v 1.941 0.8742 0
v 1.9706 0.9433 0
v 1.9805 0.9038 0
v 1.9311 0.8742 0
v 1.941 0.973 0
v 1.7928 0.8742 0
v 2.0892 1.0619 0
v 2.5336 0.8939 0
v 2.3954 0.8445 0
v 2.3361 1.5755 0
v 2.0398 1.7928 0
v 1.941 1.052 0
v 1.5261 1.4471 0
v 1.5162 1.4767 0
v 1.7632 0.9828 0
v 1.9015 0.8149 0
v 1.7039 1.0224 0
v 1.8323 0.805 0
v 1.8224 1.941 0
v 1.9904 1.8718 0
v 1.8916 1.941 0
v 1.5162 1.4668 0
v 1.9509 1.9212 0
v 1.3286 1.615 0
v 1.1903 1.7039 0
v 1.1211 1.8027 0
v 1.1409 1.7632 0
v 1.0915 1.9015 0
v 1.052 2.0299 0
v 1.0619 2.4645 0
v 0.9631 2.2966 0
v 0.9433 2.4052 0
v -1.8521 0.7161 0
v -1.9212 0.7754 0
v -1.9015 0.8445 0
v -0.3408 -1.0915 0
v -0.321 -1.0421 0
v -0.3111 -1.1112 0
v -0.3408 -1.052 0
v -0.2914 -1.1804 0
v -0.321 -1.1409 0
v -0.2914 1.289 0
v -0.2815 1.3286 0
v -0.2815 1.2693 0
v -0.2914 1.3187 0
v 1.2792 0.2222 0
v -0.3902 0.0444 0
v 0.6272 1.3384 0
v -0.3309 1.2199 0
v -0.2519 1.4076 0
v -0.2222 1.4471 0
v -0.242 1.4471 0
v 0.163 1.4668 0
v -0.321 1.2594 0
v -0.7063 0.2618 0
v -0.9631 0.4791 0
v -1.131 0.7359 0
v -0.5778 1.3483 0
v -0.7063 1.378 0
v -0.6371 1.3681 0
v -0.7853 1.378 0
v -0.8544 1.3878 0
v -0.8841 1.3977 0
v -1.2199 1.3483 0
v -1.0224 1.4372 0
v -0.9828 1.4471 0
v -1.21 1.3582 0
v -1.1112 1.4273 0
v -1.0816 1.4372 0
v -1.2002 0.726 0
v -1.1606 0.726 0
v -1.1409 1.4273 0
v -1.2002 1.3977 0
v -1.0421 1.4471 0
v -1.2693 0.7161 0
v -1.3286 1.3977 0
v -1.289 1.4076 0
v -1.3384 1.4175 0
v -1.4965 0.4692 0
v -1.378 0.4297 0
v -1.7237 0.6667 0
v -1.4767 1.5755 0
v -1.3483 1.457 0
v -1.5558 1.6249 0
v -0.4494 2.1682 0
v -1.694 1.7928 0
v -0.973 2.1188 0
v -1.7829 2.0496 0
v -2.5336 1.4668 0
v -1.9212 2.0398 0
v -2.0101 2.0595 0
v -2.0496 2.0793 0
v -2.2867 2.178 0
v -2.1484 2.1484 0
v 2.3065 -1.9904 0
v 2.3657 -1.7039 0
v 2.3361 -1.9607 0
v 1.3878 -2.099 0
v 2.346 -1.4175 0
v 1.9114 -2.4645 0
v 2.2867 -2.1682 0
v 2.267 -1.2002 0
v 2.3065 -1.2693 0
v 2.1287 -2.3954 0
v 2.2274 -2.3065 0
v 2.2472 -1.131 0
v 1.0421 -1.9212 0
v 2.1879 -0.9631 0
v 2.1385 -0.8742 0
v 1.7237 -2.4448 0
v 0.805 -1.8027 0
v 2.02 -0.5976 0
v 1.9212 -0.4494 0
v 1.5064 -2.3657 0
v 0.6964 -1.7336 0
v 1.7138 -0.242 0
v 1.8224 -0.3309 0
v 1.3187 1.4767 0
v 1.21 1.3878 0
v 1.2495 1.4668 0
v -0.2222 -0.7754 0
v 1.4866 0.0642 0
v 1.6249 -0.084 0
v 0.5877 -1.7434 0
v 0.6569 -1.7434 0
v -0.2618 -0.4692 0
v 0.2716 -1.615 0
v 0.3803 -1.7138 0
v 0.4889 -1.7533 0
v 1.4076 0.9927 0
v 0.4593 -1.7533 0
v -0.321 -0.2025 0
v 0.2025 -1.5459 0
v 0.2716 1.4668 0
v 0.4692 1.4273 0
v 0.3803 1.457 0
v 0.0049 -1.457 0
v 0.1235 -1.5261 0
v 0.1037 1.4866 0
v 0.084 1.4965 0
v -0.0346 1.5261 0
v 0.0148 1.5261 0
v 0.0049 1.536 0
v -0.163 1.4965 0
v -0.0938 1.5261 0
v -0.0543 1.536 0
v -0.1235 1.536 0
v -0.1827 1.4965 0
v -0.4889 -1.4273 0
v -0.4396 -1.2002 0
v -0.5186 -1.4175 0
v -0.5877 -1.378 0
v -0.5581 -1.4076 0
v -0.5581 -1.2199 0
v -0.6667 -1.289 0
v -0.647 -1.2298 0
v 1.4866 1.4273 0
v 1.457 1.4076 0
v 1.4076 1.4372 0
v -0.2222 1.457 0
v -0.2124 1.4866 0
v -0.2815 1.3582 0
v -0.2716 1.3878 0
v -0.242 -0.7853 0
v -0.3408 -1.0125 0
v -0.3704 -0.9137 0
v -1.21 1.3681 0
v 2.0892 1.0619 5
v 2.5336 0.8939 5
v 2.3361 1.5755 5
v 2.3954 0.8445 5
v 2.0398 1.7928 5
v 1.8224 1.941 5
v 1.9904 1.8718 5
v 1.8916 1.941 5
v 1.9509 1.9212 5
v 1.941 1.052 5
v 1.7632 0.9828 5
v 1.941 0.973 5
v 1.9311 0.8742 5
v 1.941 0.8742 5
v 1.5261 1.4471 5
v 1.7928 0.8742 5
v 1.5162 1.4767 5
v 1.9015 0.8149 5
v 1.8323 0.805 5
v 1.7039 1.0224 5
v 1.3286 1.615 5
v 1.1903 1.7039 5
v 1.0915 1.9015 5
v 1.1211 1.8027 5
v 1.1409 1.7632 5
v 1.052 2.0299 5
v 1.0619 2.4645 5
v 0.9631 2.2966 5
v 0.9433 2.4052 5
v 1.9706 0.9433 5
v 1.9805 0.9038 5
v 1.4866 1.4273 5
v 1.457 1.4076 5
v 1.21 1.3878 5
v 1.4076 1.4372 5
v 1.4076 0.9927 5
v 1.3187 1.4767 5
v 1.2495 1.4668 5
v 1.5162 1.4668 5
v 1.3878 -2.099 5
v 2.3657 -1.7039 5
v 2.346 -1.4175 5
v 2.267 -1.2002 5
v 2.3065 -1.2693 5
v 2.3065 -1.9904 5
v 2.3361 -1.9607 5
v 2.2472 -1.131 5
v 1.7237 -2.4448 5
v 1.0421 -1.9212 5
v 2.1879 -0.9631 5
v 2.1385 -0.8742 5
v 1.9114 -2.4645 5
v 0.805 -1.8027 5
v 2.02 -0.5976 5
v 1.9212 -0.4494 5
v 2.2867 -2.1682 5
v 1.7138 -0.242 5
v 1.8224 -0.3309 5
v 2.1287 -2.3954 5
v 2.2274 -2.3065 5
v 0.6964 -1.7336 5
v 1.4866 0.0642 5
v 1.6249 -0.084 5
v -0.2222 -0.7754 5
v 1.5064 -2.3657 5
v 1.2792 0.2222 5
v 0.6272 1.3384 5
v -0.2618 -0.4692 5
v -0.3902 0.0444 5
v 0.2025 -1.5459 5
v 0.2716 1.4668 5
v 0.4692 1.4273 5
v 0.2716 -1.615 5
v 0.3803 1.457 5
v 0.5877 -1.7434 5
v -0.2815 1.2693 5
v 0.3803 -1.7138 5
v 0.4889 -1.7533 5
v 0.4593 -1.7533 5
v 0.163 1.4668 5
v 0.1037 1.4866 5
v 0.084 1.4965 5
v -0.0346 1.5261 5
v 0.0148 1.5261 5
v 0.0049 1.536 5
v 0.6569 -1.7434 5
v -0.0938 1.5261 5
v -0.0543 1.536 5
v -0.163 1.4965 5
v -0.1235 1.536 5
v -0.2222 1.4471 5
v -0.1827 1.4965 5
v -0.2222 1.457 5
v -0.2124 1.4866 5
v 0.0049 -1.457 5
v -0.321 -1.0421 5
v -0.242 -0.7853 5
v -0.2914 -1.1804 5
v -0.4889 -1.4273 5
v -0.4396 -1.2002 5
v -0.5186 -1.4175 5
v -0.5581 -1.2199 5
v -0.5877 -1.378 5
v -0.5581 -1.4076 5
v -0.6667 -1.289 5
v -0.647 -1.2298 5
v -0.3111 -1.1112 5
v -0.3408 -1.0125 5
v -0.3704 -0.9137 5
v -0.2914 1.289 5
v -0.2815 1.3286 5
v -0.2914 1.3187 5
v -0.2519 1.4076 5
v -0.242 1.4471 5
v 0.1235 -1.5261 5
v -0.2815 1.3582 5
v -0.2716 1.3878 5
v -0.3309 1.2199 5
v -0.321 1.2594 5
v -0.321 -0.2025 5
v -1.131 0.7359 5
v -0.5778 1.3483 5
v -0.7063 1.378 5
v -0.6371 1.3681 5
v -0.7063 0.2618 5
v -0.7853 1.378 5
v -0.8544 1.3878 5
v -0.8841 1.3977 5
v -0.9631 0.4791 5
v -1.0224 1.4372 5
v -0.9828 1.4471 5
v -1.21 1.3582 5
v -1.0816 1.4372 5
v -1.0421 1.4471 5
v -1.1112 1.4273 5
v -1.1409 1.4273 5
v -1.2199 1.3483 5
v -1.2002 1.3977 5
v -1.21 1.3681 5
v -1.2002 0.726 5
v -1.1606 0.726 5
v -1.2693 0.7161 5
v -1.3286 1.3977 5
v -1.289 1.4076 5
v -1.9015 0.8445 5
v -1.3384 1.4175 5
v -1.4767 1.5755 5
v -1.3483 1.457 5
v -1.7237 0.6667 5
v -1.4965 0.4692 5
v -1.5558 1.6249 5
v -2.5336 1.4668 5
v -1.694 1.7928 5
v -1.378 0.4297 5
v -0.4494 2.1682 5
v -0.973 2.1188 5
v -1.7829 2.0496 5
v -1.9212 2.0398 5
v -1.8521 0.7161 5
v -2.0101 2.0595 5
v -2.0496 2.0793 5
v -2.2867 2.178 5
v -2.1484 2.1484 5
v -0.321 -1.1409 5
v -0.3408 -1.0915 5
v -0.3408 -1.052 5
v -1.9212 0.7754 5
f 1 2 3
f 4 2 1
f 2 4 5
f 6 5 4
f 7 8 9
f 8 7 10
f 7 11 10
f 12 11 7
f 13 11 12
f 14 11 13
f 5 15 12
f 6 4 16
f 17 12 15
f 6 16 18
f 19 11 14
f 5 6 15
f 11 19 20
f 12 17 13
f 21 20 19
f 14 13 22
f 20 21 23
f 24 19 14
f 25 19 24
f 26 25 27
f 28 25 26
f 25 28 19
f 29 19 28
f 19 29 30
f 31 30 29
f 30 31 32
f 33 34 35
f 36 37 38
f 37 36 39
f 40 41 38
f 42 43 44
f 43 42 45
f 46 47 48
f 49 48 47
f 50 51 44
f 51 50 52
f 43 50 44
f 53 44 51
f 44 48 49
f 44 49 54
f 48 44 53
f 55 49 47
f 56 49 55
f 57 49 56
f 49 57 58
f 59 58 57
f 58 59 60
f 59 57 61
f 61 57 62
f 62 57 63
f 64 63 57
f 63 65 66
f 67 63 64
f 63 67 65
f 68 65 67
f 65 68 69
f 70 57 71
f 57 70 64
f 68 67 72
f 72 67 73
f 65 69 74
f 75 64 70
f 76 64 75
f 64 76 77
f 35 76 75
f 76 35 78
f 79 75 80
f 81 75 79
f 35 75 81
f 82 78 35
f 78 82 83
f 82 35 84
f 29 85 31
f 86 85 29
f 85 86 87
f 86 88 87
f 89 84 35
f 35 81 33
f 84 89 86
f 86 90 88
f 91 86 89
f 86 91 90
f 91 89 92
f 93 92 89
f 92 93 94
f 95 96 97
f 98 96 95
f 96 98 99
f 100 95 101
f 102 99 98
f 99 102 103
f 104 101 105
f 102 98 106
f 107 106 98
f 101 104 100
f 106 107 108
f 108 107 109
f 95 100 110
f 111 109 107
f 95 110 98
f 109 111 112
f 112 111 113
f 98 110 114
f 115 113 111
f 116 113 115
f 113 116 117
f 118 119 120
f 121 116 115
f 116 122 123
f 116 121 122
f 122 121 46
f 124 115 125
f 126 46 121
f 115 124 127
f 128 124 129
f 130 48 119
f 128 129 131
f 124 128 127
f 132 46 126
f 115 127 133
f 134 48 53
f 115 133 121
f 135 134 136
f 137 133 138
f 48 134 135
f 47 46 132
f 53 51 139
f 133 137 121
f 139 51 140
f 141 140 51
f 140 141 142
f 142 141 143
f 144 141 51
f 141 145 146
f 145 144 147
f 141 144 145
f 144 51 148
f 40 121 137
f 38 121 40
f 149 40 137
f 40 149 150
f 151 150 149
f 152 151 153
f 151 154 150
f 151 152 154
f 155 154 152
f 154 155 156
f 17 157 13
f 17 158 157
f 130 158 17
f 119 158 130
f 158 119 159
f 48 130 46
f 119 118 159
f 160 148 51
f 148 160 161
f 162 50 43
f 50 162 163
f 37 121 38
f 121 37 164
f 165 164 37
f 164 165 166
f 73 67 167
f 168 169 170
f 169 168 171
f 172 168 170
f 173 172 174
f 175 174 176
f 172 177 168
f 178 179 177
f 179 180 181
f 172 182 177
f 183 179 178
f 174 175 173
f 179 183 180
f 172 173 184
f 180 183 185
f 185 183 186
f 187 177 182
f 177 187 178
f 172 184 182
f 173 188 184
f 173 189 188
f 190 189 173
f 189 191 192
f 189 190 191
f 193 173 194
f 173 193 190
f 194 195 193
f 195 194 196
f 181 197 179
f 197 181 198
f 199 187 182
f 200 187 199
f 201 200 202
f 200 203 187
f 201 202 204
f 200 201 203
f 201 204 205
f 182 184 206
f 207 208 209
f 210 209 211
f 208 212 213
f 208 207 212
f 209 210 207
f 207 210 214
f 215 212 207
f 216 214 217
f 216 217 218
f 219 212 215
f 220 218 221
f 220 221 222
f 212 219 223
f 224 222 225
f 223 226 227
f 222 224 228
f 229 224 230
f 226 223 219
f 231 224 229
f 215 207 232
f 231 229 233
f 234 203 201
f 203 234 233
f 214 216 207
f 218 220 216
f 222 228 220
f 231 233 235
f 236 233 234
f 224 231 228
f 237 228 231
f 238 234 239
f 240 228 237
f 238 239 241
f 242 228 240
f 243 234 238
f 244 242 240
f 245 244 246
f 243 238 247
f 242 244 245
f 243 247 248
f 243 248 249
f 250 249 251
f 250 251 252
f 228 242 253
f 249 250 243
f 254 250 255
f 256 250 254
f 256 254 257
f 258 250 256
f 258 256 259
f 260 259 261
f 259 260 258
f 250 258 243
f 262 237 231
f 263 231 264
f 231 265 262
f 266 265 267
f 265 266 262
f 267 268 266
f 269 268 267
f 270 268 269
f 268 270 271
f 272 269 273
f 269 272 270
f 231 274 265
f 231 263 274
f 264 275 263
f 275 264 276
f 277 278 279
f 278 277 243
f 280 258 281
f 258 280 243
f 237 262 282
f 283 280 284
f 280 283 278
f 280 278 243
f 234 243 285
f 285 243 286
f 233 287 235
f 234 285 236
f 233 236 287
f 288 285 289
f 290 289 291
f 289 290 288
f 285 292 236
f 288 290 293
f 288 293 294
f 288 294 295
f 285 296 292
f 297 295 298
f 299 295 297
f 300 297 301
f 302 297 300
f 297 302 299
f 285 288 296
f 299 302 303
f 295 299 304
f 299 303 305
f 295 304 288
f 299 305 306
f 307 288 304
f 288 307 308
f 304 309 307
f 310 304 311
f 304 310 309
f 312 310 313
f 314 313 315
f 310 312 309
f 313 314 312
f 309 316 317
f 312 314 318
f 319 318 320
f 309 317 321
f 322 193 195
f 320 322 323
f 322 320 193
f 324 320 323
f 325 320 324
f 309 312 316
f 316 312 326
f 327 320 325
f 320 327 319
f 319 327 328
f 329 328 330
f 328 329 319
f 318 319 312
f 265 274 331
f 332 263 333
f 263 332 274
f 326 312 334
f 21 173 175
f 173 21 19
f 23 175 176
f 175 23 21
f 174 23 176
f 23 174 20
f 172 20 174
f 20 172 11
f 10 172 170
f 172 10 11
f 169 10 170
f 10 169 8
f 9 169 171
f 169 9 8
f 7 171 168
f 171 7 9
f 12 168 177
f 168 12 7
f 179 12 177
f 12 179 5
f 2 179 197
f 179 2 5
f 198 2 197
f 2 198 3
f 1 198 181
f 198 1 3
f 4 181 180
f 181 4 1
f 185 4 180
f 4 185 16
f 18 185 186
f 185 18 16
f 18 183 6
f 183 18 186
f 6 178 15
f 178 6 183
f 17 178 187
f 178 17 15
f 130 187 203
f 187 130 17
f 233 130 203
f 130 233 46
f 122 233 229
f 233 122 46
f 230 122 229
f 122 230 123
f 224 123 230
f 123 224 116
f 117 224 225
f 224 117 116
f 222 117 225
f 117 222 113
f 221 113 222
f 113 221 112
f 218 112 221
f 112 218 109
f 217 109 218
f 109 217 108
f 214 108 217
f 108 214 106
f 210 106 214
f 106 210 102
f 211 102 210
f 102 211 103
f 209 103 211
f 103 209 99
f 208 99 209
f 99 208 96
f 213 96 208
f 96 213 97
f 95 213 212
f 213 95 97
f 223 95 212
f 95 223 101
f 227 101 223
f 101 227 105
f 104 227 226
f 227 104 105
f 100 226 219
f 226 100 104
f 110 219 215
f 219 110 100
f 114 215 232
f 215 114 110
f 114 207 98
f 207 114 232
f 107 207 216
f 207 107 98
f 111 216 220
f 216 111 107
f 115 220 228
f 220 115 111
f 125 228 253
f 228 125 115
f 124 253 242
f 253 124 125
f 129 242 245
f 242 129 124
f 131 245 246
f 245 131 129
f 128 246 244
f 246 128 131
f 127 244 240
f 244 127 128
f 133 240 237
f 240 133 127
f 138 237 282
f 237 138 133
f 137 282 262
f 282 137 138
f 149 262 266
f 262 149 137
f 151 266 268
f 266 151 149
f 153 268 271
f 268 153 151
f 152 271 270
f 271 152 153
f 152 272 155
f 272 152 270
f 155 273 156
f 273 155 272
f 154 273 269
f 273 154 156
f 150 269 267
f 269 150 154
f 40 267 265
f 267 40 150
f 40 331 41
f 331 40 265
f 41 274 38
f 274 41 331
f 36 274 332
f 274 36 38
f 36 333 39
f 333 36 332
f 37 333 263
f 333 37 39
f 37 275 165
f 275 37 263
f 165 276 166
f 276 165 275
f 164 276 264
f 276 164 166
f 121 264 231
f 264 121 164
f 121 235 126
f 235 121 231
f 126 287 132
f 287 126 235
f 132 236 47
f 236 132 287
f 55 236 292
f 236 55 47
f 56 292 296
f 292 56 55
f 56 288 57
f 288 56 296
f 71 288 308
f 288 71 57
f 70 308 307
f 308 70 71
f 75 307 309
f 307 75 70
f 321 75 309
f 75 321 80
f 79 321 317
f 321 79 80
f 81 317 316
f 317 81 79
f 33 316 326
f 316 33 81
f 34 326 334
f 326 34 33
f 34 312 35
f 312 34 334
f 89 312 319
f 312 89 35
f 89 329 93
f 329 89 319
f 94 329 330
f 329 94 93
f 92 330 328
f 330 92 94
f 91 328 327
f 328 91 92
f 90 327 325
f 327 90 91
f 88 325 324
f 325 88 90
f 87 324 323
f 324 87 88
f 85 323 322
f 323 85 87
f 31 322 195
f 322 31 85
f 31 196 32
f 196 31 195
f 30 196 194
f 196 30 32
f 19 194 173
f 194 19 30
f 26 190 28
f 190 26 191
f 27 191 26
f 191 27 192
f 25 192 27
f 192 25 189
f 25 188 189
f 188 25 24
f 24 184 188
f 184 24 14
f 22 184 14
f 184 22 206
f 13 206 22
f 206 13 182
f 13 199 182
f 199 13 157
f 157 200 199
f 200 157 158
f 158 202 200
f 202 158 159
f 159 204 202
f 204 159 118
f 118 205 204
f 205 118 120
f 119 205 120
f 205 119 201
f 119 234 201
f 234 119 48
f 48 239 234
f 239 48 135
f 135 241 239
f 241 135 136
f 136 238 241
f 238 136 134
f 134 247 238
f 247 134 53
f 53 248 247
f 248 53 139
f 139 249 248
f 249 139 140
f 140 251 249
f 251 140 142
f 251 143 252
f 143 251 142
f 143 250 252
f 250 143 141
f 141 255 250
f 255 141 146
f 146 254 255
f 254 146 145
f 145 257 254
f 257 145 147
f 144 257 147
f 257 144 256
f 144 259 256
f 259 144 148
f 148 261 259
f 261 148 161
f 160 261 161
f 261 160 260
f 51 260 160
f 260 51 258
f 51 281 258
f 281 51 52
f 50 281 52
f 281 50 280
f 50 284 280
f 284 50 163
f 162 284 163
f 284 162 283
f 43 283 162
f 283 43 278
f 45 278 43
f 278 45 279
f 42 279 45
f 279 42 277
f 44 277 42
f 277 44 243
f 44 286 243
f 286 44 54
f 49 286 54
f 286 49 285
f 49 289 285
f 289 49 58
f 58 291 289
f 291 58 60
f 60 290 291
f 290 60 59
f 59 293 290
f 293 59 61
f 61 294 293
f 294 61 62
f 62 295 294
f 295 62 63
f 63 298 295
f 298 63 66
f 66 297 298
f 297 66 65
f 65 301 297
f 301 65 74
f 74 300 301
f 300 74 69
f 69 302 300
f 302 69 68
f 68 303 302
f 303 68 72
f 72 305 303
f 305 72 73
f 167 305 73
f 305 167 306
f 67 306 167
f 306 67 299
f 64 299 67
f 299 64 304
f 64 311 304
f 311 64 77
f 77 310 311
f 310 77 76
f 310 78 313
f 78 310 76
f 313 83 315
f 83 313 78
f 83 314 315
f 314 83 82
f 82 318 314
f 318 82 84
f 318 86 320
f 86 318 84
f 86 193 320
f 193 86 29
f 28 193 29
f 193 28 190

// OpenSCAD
// Module names are of the form poly_<inkscape-path-id>().  As a result,
// you can associate a polygon in this OpenSCAD program with the corresponding
// SVG element in the Inkscape document by looking for the XML element with
// the attribute id="inkscape-path-id".

// fudge value is used to ensure that subtracted solids are a tad taller
// in the z dimension than the polygon being subtracted from.  This helps
// keep the resulting .stl file manifold.
fudge = 0.1;

module poly_path4292(h)
{
  scale([25.4/90, -25.4/90, 1]) union()
  {
    difference()
    {
       linear_extrude(height=h)
         polygon([[6.877500,-3.727500],[6.877500,-3.447500],[6.982500,-3.342500],[7.017500,-3.202500],[6.877500,-3.097500],[6.842500,-3.097500],[6.737500,-2.887500],[6.492500,-2.852500],[6.352500,-3.097500],[6.247500,-3.482500],[6.037500,-3.622500],[4.987500,-3.517500],[4.532500,-0.787500],[5.267500,-0.227500],[5.757500,0.297500],[6.072500,0.857500],[6.457500,1.172500],[6.807500,1.592500],[7.157500,2.117500],[7.577500,3.097500],[7.752500,3.412500],[7.962500,4.007500],[8.032500,4.252500],[8.172500,4.497500],[8.312500,5.022500],[8.382500,6.037500],[8.277500,6.947500],[8.172500,7.052500],[8.102500,7.682500],[7.892500,8.172500],[7.542500,8.487500],[6.772500,8.732500],[6.107500,8.662500],[5.337500,8.382500],[4.917500,7.437500],[3.692500,6.807500],[2.852500,6.387500],[2.467500,6.142500],[2.327500,6.177500],[2.082500,6.177500],[1.732500,6.212500],[1.627500,6.212500],[1.347500,6.072500],[0.962500,5.722500],[0.717500,5.477500],[0.437500,5.407500],[0.017500,5.162500],[-1.732500,5.057500],[-1.837500,5.022500],[-1.977500,4.987500],[-2.082500,4.882500],[-2.362500,4.567500],[-2.292500,4.357500],[-1.977500,4.322500],[-1.557500,4.252500],[-1.032500,4.182500],[-1.137500,4.042500],[-1.102500,3.937500],[-1.207500,3.867500],[-1.207500,3.727500],[-1.137500,3.692500],[-1.207500,3.587500],[-1.312500,3.237500],[-0.857500,2.782500],[-0.787500,2.747500],[-0.927500,1.662500],[-1.137500,0.717500],[-1.382500,-0.157500],[-2.502500,-0.927500],[-3.412500,-1.697500],[-4.007500,-2.607500],[-4.112500,-2.572500],[-4.252500,-2.572500],[-4.497500,-2.537500],[-4.882500,-1.522500],[-5.302500,-1.662500],[-6.107500,-2.362500],[-6.562500,-2.537500],[-6.807500,-2.747500],[-6.737500,-2.992500],[-8.977500,-5.197500],[-8.102500,-7.717500],[-7.612500,-7.612500],[-7.262500,-7.367500],[-7.122500,-7.297500],[-6.807500,-7.227500],[-6.317500,-7.262500],[-5.092500,-7.367500],[-3.447500,-7.507500],[-1.592500,-7.682500],[3.412500,-8.137500],[3.342500,-8.522500],[3.762500,-8.732500],[6.457500,-6.877500],[6.702500,-6.877500],[6.912500,-6.807500],[7.052500,-6.632500],[7.227500,-6.352500],[8.277500,-5.582500],[8.977500,-3.167500],[8.487500,-2.992500],[7.402500,-3.762500],[6.877500,-3.727500]]);
       translate([0, 0, -fudge])
         linear_extrude(height=h+2*fudge)
           polygon([[5.407500,-5.127500],[5.372500,-5.197500],[5.372500,-5.232500],[4.707500,-5.722500],[4.217500,-6.037500],[4.042500,-6.247500],[3.972500,-6.387500],[3.867500,-6.737500],[3.727500,-7.192500],[-6.002500,-6.352500],[-5.512500,-5.757500],[-5.232500,-5.582500],[-4.777500,-5.162500],[-4.742500,-5.022500],[-4.707500,-4.952500],[-4.567500,-4.987500],[-4.322500,-4.777500],[-4.287500,-4.812500],[-4.287500,-4.847500],[-4.252500,-4.952500],[-4.182500,-4.987500],[-4.042500,-5.057500],[-3.937500,-5.057500],[-3.832500,-5.092500],[-3.692500,-5.127500],[-3.622500,-5.092500],[-3.482500,-5.127500],[-3.412500,-5.092500],[-3.132500,-4.952500],[-3.027500,-4.917500],[-2.782500,-4.882500],[-2.502500,-4.882500],[-2.257500,-4.847500],[-2.047500,-4.777500],[-1.172500,-4.322500],[-1.137500,-4.462500],[-0.997500,-4.497500],[-1.032500,-4.567500],[-1.032500,-4.672500],[-0.997500,-4.707500],[-0.997500,-4.812500],[-0.962500,-4.917500],[-0.927500,-4.952500],[-0.892500,-4.987500],[-0.857500,-5.127500],[-0.787500,-5.127500],[-0.787500,-5.162500],[-0.752500,-5.267500],[-0.647500,-5.302500],[-0.577500,-5.302500],[-0.437500,-5.442500],[-0.332500,-5.407500],[-0.192500,-5.442500],[-0.122500,-5.407500],[0.017500,-5.442500],[0.052500,-5.407500],[0.297500,-5.302500],[0.367500,-5.267500],[0.472500,-5.232500],[0.577500,-5.197500],[0.962500,-5.197500],[1.347500,-5.162500],[1.662500,-5.057500],[2.222500,-4.742500],[4.287500,-4.917500],[4.427500,-5.197500],[4.672500,-5.232500],[4.987500,-5.092500],[5.162500,-4.987500],[5.267500,-5.057500],[5.407500,-5.127500]]);
    }
  }
}

poly_path4292(5);
